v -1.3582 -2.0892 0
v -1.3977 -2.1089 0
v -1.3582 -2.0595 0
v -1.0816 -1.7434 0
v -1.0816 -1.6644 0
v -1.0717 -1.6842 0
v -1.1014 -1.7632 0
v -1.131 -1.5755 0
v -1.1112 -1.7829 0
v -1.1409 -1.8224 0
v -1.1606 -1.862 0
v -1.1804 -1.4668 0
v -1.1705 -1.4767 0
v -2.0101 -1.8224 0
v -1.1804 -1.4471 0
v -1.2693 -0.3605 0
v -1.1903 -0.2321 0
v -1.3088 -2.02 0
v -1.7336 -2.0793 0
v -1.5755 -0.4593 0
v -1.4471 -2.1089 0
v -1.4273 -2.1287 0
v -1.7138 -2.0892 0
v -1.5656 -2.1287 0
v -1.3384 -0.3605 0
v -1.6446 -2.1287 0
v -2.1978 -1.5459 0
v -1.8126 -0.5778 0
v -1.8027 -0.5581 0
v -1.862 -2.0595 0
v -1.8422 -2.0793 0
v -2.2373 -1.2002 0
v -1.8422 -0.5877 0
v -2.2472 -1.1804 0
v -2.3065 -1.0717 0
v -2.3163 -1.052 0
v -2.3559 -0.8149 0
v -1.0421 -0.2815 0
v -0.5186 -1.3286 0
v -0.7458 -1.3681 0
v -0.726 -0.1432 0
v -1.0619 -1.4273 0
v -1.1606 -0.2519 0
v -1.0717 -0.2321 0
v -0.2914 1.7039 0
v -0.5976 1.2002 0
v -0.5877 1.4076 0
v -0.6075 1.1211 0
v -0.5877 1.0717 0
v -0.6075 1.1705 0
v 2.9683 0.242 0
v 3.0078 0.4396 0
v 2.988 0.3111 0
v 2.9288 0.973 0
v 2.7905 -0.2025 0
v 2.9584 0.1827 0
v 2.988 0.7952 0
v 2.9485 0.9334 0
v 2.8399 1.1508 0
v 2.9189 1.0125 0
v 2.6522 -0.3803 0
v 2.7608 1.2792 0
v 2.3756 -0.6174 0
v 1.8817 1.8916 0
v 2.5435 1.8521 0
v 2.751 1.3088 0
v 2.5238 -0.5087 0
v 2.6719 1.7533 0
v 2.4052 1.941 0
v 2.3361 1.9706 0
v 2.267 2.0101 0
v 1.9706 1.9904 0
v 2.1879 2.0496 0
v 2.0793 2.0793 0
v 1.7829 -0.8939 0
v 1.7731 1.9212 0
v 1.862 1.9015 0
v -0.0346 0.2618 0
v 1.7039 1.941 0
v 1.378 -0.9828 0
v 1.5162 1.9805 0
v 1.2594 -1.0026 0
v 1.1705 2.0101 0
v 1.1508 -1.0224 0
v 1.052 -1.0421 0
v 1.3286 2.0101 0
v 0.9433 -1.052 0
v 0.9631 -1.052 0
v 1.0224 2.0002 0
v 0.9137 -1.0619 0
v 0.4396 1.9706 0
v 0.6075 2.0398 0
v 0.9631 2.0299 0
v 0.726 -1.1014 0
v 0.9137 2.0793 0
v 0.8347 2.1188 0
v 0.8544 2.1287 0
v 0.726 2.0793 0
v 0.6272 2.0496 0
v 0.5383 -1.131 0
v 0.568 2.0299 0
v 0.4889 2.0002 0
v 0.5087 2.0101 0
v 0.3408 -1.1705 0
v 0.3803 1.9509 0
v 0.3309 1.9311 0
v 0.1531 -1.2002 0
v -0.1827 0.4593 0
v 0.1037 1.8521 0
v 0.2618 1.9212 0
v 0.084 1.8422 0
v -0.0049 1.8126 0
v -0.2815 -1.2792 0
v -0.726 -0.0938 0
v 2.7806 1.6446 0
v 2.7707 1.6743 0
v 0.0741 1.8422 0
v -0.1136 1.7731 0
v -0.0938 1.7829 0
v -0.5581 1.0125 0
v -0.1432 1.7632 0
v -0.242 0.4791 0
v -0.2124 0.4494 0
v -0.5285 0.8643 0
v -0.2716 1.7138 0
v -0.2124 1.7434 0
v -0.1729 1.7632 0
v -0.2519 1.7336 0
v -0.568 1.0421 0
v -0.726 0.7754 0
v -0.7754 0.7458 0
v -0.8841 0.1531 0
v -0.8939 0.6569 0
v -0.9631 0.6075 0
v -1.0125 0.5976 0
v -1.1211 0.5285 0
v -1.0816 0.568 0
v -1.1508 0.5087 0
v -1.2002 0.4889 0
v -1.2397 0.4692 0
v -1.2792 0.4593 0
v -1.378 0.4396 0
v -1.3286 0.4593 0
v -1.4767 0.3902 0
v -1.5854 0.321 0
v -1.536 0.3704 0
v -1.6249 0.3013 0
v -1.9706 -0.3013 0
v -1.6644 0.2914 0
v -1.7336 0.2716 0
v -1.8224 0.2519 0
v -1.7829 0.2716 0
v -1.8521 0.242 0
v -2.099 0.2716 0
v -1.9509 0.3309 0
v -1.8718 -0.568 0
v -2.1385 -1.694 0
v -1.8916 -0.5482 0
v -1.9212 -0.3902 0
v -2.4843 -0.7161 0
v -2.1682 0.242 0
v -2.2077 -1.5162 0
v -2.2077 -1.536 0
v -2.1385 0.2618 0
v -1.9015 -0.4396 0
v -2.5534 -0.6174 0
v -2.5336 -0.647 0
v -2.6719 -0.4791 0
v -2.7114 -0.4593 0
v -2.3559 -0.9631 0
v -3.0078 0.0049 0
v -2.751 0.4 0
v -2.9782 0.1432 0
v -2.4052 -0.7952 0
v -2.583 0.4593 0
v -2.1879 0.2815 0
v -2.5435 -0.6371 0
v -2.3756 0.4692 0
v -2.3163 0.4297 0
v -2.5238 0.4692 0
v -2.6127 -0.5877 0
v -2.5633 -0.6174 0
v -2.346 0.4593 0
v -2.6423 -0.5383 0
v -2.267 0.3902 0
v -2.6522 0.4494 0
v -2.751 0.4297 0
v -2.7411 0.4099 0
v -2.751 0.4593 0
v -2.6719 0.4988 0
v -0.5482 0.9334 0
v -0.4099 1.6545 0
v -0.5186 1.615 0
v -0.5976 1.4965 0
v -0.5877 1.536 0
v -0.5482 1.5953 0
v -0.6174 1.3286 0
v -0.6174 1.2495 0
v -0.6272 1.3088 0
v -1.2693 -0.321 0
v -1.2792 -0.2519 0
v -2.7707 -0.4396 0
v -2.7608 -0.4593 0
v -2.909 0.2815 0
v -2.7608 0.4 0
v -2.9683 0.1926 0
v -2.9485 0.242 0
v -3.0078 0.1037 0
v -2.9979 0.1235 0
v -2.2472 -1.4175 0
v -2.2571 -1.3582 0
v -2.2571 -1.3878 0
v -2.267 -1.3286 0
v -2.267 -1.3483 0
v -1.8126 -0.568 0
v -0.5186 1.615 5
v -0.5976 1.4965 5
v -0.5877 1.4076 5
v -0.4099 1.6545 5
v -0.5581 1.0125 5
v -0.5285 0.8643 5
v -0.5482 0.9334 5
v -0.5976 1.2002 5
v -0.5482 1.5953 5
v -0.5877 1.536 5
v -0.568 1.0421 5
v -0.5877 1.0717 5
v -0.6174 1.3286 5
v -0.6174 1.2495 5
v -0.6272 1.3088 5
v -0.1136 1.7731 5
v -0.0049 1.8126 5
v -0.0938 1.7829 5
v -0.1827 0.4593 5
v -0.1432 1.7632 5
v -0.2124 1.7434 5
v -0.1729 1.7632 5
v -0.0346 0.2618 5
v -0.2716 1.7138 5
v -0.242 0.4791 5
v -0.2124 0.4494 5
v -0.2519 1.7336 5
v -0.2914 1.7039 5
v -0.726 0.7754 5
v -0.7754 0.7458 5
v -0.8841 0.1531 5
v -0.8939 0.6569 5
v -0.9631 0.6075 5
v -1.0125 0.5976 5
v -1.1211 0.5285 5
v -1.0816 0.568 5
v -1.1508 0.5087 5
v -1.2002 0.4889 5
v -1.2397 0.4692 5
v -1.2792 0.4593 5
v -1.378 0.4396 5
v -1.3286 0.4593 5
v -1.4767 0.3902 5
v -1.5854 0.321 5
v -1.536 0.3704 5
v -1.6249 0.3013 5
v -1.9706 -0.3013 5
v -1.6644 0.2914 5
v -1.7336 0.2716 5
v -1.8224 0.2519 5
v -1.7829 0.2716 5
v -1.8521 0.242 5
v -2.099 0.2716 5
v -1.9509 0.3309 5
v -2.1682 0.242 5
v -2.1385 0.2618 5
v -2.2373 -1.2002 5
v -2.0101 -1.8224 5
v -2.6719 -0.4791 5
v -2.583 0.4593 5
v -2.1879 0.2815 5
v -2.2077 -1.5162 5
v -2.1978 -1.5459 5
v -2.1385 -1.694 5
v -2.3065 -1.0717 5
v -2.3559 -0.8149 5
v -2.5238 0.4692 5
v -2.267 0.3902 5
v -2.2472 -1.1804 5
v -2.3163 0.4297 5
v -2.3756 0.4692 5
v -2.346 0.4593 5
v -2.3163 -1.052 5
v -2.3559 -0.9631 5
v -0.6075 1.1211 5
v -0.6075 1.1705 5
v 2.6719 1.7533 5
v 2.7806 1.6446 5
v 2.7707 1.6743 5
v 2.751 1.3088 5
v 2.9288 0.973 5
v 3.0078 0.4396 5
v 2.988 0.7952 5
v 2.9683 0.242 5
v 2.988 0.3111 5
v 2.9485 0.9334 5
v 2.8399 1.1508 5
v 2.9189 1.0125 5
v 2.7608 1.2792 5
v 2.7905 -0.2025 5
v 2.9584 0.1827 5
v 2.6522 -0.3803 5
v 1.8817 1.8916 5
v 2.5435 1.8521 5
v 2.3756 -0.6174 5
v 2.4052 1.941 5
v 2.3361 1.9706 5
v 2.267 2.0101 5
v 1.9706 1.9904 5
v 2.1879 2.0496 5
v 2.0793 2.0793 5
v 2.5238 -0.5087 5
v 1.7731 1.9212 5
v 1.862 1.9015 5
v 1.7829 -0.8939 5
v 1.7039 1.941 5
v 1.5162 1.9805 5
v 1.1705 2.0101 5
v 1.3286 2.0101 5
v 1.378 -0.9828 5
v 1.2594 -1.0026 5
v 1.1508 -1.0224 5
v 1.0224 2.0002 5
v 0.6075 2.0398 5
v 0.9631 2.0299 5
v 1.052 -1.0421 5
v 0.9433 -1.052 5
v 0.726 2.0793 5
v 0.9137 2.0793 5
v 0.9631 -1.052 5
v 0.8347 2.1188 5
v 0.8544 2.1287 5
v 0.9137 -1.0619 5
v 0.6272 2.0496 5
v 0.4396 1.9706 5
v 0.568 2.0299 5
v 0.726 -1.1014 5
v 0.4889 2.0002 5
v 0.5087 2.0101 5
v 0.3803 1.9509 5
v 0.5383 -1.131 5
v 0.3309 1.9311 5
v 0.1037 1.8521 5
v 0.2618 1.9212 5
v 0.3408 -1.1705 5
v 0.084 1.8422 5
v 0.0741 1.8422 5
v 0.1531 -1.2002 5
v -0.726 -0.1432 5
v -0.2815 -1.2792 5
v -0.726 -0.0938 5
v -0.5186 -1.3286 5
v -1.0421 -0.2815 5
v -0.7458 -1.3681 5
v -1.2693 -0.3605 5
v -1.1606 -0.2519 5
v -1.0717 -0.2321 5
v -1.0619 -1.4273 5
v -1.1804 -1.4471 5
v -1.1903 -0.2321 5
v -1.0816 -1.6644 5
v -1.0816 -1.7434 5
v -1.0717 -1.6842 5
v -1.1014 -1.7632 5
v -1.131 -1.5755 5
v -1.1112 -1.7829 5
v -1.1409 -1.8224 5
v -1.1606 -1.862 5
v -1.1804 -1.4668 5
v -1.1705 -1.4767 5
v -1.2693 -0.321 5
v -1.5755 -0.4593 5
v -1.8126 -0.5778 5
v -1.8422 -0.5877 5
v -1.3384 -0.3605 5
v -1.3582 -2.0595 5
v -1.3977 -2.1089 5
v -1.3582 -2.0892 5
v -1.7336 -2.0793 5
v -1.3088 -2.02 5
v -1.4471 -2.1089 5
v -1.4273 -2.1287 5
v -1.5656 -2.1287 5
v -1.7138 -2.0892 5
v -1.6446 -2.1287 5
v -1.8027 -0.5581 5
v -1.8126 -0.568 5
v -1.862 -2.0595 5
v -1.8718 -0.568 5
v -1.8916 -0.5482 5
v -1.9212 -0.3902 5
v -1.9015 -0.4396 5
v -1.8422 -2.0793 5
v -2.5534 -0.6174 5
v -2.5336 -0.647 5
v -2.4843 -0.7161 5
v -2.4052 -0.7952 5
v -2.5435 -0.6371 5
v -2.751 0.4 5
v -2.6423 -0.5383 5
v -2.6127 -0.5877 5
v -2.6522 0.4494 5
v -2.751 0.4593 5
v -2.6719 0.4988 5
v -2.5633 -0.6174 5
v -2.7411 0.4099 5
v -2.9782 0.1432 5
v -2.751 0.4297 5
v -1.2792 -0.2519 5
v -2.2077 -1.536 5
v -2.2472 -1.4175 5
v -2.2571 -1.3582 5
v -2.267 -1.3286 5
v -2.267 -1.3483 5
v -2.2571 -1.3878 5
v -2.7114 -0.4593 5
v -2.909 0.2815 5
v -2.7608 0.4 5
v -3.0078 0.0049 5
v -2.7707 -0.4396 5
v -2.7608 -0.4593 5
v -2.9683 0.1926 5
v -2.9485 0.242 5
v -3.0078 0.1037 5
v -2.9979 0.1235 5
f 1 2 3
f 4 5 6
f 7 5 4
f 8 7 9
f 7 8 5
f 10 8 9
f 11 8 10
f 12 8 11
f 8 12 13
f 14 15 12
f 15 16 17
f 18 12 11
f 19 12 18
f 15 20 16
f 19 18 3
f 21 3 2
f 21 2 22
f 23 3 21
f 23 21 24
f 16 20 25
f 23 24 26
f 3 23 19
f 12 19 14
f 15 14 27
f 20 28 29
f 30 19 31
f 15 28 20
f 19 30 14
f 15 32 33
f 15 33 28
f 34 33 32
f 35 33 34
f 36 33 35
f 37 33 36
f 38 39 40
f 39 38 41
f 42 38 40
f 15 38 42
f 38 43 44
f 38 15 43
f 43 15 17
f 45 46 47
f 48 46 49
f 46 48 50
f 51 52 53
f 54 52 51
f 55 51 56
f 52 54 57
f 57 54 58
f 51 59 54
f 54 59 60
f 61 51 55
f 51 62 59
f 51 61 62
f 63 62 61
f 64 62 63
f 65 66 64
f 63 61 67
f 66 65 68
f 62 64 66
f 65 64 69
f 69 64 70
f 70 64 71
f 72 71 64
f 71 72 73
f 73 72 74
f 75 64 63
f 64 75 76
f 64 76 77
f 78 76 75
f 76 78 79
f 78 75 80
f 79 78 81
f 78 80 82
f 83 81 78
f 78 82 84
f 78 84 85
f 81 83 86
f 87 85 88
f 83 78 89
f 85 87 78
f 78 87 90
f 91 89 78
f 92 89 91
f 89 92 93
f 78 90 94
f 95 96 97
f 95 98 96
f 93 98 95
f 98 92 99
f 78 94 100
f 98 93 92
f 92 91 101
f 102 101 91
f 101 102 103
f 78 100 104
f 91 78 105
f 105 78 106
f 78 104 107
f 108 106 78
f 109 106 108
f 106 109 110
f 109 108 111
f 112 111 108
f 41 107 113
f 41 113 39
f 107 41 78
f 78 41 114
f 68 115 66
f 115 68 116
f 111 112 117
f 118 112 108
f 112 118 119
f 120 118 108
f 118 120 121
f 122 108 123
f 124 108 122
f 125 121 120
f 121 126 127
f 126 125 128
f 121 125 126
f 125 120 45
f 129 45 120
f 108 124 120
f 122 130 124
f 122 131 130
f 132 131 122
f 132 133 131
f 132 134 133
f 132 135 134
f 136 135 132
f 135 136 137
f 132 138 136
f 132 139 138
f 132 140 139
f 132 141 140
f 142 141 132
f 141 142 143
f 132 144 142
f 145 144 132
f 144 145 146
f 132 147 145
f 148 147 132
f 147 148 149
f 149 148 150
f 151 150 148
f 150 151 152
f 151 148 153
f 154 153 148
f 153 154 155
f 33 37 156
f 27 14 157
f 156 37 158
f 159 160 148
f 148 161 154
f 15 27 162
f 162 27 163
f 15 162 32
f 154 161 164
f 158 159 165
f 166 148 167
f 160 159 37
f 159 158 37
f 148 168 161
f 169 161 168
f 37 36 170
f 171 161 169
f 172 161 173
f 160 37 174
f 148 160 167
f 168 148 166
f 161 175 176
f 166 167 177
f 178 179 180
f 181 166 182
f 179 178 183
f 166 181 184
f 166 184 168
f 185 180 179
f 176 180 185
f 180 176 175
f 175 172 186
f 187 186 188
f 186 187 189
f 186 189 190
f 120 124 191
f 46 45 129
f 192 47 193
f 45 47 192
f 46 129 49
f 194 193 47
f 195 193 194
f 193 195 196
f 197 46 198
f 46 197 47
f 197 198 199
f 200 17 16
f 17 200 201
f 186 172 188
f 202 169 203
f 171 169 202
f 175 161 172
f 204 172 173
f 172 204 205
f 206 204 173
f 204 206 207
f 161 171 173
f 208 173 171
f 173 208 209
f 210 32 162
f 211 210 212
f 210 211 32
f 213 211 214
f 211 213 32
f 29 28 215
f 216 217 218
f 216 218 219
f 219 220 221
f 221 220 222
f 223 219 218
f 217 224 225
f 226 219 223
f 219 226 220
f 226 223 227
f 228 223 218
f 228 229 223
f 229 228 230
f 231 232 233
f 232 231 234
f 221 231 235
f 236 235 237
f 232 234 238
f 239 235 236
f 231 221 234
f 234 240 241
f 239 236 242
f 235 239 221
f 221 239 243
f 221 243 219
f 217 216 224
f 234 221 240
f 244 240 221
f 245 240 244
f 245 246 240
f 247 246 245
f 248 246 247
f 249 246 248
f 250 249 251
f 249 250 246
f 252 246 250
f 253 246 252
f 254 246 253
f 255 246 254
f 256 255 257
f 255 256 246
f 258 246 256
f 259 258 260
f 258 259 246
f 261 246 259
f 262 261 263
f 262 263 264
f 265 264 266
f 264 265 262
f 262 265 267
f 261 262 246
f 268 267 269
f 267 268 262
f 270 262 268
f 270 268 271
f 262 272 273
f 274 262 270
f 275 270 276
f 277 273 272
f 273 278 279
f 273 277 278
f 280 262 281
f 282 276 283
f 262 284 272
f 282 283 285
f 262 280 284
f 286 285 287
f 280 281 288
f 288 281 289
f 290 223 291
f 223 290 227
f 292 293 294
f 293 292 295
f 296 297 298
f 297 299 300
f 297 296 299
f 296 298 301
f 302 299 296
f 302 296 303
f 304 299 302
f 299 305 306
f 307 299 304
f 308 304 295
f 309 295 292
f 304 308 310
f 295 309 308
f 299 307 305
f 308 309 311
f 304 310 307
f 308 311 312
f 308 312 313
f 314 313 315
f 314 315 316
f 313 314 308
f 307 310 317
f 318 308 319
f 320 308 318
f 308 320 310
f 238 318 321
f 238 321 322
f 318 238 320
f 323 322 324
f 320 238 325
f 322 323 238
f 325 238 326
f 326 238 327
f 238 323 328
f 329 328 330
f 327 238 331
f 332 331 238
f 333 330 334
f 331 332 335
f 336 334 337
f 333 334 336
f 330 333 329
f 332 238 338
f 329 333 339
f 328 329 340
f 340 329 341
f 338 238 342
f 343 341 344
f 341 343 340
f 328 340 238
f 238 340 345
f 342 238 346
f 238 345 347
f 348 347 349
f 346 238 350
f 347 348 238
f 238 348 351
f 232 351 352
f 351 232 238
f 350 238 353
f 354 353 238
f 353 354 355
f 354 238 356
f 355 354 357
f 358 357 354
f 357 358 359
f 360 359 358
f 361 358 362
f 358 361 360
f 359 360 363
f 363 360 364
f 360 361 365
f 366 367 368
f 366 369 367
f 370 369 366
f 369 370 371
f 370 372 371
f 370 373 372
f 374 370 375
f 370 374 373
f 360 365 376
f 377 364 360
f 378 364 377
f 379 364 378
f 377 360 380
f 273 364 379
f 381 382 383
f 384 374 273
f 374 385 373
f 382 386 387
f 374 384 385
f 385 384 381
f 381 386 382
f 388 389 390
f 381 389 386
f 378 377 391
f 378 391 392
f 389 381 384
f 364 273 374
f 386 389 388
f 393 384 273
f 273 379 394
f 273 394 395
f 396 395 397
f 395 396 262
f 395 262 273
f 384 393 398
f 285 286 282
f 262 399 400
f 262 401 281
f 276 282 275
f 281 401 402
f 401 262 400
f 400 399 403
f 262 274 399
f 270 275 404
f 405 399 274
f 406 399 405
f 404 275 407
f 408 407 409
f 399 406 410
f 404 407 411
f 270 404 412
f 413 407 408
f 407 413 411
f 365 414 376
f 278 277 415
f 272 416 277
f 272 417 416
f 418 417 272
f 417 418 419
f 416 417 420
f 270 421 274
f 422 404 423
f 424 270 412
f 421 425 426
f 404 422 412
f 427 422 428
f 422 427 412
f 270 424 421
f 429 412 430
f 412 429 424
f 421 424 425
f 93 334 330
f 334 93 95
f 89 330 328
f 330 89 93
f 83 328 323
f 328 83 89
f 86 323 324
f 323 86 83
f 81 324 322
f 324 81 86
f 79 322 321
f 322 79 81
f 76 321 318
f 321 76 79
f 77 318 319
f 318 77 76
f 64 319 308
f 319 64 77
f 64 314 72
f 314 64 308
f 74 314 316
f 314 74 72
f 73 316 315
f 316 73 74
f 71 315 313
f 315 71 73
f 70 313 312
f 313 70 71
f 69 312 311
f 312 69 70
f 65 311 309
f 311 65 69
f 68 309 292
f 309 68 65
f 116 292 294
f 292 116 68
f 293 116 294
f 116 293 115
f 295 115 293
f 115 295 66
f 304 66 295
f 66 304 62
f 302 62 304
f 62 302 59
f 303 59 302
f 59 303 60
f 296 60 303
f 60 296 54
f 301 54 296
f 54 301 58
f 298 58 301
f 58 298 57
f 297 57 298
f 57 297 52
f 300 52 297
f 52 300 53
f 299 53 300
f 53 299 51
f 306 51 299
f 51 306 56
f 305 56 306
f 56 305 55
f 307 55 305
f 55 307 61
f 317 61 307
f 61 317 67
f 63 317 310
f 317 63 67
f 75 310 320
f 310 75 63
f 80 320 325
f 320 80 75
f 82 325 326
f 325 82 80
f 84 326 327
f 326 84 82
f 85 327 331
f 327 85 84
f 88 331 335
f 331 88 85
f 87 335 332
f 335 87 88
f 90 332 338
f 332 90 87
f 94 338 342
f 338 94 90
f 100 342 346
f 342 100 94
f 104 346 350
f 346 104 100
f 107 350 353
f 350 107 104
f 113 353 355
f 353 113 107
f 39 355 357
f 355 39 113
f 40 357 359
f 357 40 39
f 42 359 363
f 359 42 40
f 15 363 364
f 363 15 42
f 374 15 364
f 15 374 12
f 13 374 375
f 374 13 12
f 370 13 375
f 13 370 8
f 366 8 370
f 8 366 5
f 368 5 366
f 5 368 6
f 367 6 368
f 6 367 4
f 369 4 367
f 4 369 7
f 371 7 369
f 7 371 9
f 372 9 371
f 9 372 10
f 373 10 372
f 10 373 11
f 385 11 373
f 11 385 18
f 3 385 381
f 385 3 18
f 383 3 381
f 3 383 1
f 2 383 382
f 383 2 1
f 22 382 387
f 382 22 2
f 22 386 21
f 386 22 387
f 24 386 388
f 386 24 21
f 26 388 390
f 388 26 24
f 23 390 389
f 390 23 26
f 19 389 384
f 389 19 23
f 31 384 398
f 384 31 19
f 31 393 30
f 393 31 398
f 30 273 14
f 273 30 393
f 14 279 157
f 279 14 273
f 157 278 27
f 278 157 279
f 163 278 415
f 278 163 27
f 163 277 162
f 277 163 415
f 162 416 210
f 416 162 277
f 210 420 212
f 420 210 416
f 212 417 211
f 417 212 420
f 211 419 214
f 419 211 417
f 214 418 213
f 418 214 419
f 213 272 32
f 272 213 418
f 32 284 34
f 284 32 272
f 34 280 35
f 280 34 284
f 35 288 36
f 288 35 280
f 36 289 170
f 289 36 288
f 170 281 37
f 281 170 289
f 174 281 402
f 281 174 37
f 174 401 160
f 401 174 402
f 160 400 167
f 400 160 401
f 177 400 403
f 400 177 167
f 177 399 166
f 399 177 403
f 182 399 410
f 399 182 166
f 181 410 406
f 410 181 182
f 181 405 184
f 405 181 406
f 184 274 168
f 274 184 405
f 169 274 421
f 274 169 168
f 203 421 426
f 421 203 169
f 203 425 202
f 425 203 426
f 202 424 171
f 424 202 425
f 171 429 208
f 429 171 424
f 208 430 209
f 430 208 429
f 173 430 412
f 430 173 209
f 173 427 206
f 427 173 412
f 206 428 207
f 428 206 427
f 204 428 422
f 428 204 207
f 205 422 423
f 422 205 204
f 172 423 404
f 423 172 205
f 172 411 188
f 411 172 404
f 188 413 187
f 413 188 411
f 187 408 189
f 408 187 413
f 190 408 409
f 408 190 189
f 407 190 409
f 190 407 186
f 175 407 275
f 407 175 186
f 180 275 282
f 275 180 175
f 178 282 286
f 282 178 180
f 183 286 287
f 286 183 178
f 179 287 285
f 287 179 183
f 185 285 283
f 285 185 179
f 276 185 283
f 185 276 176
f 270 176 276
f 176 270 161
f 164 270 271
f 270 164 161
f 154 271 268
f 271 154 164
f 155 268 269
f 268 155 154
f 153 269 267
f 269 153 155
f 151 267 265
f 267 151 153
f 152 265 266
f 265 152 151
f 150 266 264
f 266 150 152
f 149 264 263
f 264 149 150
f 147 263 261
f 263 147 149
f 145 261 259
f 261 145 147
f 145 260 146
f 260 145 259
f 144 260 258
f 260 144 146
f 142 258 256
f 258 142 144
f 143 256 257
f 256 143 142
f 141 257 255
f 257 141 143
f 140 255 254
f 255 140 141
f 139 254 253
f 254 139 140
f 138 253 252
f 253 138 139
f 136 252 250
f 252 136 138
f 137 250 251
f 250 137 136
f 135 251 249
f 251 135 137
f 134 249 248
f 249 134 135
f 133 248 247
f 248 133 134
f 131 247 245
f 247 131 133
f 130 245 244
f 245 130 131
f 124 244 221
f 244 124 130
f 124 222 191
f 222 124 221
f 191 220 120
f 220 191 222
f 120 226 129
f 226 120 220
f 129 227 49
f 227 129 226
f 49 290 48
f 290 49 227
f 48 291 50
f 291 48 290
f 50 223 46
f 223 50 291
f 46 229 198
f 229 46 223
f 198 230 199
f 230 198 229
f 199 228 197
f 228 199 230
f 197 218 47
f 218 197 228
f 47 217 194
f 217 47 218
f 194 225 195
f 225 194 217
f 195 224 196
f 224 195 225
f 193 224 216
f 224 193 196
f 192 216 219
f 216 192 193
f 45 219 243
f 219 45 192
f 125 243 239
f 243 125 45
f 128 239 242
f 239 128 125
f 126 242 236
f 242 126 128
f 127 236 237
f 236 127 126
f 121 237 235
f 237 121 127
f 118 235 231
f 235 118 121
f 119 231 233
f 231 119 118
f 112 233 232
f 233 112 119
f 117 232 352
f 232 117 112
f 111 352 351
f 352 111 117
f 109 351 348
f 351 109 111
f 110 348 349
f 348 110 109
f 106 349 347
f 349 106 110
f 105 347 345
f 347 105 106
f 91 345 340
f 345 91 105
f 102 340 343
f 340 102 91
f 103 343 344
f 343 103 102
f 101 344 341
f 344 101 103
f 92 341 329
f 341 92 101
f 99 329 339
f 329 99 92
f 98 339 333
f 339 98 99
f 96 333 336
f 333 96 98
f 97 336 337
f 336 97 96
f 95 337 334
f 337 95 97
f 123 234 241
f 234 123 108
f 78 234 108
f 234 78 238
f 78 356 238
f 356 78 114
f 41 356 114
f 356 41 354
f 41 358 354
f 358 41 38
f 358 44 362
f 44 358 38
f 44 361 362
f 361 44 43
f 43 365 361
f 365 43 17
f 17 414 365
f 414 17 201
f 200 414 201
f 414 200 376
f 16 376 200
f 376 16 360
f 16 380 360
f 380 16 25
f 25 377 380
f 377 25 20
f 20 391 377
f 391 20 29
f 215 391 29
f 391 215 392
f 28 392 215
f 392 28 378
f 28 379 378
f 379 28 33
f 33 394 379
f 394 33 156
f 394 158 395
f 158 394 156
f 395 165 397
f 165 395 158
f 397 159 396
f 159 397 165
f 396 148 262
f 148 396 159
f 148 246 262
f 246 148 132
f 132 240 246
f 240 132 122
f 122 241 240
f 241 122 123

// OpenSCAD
// Module names are of the form poly_<inkscape-path-id>().  As a result,
// you can associate a polygon in this OpenSCAD program with the corresponding
// SVG element in the Inkscape document by looking for the XML element with
// the attribute id="inkscape-path-id".

// fudge value is used to ensure that subtracted solids are a tad taller
// in the z dimension than the polygon being subtracted from.  This helps
// keep the resulting .stl file manifold.
fudge = 0.1;

module poly_path4306(h)
{
  scale([25.4/90, -25.4/90, 1]) union()
  {
    difference()
    {
       linear_extrude(height=h)
         polygon([[3.342500,3.727500],[3.237500,3.762500],[2.572500,3.902500],[1.907500,4.007500],[1.207500,4.147500],[0.542500,4.252500],[-0.227500,4.392500],[-0.997500,4.532500],[-1.837500,4.707500],[-2.642500,4.847500],[-3.202500,4.952500],[-3.762500,5.057500],[-4.182500,5.127500],[-4.182500,5.197500],[-4.147500,5.232500],[-4.007500,5.582500],[-3.832500,5.897500],[-3.797500,5.967500],[-3.832500,6.177500],[-3.902500,6.247500],[-3.937500,6.317500],[-4.042500,6.457500],[-4.112500,6.597500],[-4.637500,7.157500],[-4.812500,7.297500],[-4.812500,7.402500],[-4.952500,7.472500],[-5.057500,7.542500],[-5.127500,7.472500],[-5.547500,7.542500],[-5.827500,7.542500],[-6.072500,7.402500],[-6.142500,7.367500],[-6.527500,7.367500],[-6.597500,7.297500],[-7.122500,6.457500],[-7.192500,6.387500],[-7.262500,6.317500],[-7.577500,6.002500],[-7.787500,5.477500],[-7.822500,5.442500],[-7.822500,5.372500],[-7.962500,5.022500],[-7.997500,4.917500],[-7.997500,4.812500],[-8.032500,4.777500],[-8.032500,4.707500],[-7.927500,4.252500],[-7.962500,4.182500],[-8.172500,3.797500],[-8.207500,3.727500],[-8.347500,3.412500],[-8.347500,3.062500],[-8.347500,2.887500],[-8.522500,2.817500],[-8.802500,2.537500],[-8.977500,2.292500],[-9.012500,2.257500],[-9.047500,2.187500],[-9.082500,2.187500],[-9.257500,2.082500],[-9.362500,1.907500],[-9.467500,1.697500],[-9.607500,1.627500],[-9.782500,1.627500],[-9.817500,1.557500],[-10.657500,-0.017500],[-10.657500,-0.087500],[-10.657500,-0.367500],[-10.622500,-0.437500],[-10.552500,-0.507500],[-10.517500,-0.682500],[-10.447500,-0.857500],[-10.412500,-0.892500],[-10.307500,-0.997500],[-9.782500,-1.417500],[-9.747500,-1.417500],[-9.712500,-1.452500],[-9.747500,-1.522500],[-9.747500,-1.627500],[-9.607500,-1.697500],[-9.467500,-1.767500],[-9.397500,-1.592500],[-9.152500,-1.627500],[-8.942500,-1.662500],[-8.767500,-1.662500],[-8.557500,-1.662500],[-8.417500,-1.662500],[-8.312500,-1.627500],[-8.207500,-1.522500],[-8.032500,-1.382500],[-7.752500,-0.997500],[-7.682500,-0.857500],[-7.577500,-0.927500],[-7.437500,-0.962500],[-6.912500,-1.172500],[-6.562500,-0.857500],[-6.457500,-0.892500],[-6.317500,-0.962500],[-6.142500,-0.962500],[-5.897500,-1.032500],[-5.757500,-1.067500],[-5.617500,-1.137500],[-5.582500,-1.172500],[-5.512500,-1.242500],[-5.442500,-1.312500],[-5.232500,-1.382500],[-5.022500,-1.487500],[-4.882500,-1.557500],[-4.707500,-1.627500],[-4.532500,-1.627500],[-4.392500,-1.662500],[-4.252500,-1.732500],[-4.077500,-1.802500],[-3.972500,-1.872500],[-3.832500,-2.012500],[-3.587500,-2.117500],[-3.412500,-2.152500],[-3.167500,-2.327500],[-2.887500,-2.537500],[-2.747500,-2.642500],[-2.572500,-2.747500],[-1.872500,-3.062500],[-1.942500,-3.307500],[-1.977500,-3.587500],[-2.012500,-3.692500],[-2.082500,-3.797500],[-2.152500,-3.972500],[-2.152500,-4.147500],[-2.117500,-4.252500],[-2.187500,-4.427500],[-2.222500,-4.637500],[-2.187500,-4.707500],[-2.082500,-4.987500],[-2.117500,-5.302500],[-2.082500,-5.442500],[-1.942500,-5.652500],[-1.837500,-5.722500],[-1.452500,-5.862500],[-1.032500,-6.037500],[-0.962500,-6.072500],[-0.892500,-6.142500],[-0.752500,-6.177500],[-0.612500,-6.247500],[-0.507500,-6.247500],[-0.402500,-6.282500],[-0.332500,-6.317500],[-0.017500,-6.422500],[0.262500,-6.527500],[0.297500,-6.527500],[0.367500,-6.562500],[0.927500,-6.807500],[1.172500,-6.842500],[1.347500,-6.912500],[1.557500,-6.982500],[1.732500,-7.087500],[1.802500,-7.122500],[2.012500,-7.192500],[2.152500,-7.227500],[2.222500,-7.262500],[2.572500,-7.367500],[2.957500,-7.507500],[3.027500,-7.542500],[3.237500,-7.367500],[3.412500,-7.192500],[3.622500,-7.087500],[4.147500,-7.122500],[4.707500,-7.122500],[5.372500,-7.017500],[6.037500,-6.877500],[6.282500,-6.807500],[6.597500,-6.737500],[6.667500,-6.702500],[6.982500,-7.052500],[7.367500,-7.367500],[7.752500,-7.262500],[7.892500,-7.192500],[8.032500,-7.122500],[8.277500,-6.982500],[8.522500,-6.877500],[9.012500,-6.562500],[9.467500,-6.212500],[9.817500,-5.932500],[9.852500,-5.827500],[9.747500,-4.637500],[9.782500,-4.532500],[10.062500,-4.077500],[10.342500,-3.587500],[10.377500,-3.447500],[10.447500,-3.307500],[10.587500,-2.817500],[10.657500,-1.557500],[10.587500,-1.102500],[10.517500,-0.857500],[10.482500,-0.647500],[9.887500,0.717500],[9.642500,1.032500],[9.397500,1.347500],[8.942500,1.802500],[8.417500,2.187500],[6.317500,3.167500],[4.882500,3.482500],[4.462500,3.552500],[4.077500,3.622500],[3.727500,3.692500],[3.412500,3.727500],[3.342500,3.727500]]);
       translate([0, 0, -fudge])
         linear_extrude(height=h+2*fudge)
           polygon([[-3.797500,0.822500],[-3.692500,0.997500],[-3.132500,0.752500],[-2.572500,0.507500],[-2.572500,0.332500],[-0.122500,-0.927500],[-0.647500,-1.627500],[-0.752500,-1.592500],[-0.857500,-1.697500],[-3.132500,-0.542500],[-6.982500,1.067500],[-6.807500,1.382500],[-6.737500,1.557500],[-6.702500,1.942500],[-6.632500,2.012500],[-6.527500,2.082500],[-6.422500,2.047500],[-6.422500,2.012500],[-6.387500,1.977500],[-5.582500,1.627500],[-4.742500,1.277500],[-4.532500,1.277500],[-4.497500,1.277500],[-4.497500,1.137500],[-4.532500,0.892500],[-4.217500,0.822500],[-4.112500,0.892500],[-3.797500,0.822500]]);
    }
  }
}

poly_path4306(5);
